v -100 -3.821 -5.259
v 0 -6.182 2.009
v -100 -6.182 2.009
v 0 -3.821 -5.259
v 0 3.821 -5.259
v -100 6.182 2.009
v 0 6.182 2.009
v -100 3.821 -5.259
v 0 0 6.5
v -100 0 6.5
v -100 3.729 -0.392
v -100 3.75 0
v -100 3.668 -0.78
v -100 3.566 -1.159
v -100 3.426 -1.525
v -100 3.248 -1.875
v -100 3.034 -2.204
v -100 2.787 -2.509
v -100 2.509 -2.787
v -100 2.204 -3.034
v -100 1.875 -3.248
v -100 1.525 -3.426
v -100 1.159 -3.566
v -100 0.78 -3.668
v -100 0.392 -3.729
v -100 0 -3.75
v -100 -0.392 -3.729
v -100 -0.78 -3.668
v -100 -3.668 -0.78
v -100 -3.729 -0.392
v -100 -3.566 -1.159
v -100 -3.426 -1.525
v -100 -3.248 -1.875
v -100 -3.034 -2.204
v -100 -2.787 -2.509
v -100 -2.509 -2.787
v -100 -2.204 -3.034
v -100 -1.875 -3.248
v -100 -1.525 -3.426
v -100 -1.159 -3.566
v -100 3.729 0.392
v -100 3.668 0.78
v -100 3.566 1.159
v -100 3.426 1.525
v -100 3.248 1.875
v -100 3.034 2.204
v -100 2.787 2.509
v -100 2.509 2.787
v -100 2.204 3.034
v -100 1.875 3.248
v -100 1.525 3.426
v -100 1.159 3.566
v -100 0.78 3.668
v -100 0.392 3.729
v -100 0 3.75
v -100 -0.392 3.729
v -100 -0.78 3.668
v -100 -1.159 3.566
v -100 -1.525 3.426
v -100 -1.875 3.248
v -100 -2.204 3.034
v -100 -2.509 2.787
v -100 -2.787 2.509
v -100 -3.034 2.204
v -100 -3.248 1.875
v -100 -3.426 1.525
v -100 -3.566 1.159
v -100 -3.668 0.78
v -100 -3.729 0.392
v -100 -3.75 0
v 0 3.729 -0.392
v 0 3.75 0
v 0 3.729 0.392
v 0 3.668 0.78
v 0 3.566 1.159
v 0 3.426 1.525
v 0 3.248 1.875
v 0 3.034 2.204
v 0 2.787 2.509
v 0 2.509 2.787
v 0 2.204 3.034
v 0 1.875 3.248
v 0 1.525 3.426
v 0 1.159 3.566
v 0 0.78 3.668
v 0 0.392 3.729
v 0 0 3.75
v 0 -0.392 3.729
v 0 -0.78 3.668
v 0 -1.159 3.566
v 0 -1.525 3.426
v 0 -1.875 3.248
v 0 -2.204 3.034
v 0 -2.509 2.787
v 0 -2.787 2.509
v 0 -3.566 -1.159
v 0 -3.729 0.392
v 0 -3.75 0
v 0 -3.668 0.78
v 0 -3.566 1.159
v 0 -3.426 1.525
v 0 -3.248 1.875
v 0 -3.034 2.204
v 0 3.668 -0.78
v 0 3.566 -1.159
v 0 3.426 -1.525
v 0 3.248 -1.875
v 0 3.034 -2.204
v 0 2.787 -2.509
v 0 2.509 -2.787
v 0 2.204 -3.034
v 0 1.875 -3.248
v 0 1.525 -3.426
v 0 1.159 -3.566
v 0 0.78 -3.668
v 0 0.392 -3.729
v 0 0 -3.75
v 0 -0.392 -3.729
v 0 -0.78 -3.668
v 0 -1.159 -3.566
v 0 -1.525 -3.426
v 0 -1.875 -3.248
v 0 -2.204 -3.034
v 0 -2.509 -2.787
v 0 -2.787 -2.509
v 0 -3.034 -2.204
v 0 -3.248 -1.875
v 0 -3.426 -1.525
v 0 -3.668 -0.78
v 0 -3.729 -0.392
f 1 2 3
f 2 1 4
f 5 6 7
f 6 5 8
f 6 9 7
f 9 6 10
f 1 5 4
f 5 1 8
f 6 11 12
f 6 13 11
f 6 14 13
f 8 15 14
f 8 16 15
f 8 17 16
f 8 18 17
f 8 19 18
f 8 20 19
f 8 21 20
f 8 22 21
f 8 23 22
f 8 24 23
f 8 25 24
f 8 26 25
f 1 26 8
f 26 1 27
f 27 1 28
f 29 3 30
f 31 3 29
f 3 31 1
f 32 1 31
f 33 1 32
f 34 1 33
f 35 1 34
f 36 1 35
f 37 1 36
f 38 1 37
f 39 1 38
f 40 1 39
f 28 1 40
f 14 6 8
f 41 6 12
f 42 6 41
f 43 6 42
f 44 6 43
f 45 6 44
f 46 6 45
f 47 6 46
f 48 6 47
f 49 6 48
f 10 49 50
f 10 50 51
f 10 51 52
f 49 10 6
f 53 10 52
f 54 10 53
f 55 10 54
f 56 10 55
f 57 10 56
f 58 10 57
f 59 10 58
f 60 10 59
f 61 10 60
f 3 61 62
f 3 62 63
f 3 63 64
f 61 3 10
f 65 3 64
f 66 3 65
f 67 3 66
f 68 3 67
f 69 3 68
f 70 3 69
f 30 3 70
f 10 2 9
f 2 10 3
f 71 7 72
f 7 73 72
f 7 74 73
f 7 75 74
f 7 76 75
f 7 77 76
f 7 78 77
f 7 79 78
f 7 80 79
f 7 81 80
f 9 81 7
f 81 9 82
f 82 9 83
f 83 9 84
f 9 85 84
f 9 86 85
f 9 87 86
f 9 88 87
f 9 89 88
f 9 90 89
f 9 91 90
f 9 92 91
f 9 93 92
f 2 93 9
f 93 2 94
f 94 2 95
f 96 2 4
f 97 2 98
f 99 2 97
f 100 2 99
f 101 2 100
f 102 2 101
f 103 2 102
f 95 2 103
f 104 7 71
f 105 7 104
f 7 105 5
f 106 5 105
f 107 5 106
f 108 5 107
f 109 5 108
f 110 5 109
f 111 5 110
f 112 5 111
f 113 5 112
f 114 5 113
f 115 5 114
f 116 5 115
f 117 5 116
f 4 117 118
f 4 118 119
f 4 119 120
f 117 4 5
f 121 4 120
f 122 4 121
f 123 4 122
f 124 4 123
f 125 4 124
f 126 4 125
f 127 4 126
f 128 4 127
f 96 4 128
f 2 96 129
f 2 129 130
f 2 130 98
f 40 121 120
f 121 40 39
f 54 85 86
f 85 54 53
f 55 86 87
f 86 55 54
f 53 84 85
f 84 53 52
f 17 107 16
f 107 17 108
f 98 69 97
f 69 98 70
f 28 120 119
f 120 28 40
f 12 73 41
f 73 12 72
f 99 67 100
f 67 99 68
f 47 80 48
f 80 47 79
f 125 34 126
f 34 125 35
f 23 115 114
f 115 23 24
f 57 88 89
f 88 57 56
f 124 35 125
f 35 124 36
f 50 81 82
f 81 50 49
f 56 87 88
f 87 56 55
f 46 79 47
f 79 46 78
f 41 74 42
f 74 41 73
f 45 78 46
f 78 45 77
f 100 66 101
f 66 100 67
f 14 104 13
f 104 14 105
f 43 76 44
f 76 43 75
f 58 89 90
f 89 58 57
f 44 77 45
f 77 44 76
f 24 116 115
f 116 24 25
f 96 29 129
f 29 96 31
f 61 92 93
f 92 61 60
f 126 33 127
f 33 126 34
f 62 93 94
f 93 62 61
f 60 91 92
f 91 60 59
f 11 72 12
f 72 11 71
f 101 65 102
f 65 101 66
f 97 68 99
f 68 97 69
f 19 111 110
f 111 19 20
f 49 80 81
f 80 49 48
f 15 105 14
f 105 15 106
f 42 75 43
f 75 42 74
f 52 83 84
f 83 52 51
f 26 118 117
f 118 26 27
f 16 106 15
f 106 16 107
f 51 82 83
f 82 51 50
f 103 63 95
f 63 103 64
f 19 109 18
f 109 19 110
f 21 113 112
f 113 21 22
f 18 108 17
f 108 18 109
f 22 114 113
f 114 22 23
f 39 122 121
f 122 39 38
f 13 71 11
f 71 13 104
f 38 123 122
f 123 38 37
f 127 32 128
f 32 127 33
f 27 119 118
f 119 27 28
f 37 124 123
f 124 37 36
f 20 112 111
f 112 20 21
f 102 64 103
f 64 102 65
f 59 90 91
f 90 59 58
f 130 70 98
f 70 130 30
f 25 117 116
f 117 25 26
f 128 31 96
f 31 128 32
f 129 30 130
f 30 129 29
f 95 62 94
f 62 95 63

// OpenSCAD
$fn=60;

rotate([0,-90,0]) difference() {
   cylinder($fn=5,h=100,d=13);
   translate([0,0,-0.5]) cylinder(h=101,d=7.5);
}
